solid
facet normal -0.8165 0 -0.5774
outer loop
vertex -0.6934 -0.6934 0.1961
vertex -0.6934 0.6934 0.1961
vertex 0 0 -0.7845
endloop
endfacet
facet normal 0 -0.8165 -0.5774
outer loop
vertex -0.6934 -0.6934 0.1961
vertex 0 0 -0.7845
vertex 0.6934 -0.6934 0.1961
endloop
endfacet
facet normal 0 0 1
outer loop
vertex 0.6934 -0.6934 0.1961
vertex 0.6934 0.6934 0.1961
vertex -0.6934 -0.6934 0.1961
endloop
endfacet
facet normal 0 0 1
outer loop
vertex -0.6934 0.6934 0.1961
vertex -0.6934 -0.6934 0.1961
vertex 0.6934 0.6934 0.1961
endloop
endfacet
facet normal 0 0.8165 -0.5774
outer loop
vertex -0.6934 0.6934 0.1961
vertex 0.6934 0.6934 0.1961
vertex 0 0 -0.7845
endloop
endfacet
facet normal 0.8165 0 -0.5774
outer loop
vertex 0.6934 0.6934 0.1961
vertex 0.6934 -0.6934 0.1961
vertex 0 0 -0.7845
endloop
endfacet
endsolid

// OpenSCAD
polyhedron( points = [[-0.693375245280562, -0.693375245286786, 0.196116135123066], [-0.693375245218302, 0.693375245334666, 0.196116135123066], [0.693375245278639, 0.69337524521015, 0.196116135123066], [0.693375245216374, -0.693375245286786, 0.196116135123066], [3.85162313385055e-12, 2.87573080478531e-11, -0.784464540492265]], faces = [[0, 1, 4], [0, 4, 3], [0, 3, 2, 1], [1, 2, 4], [2, 3, 4]]);
